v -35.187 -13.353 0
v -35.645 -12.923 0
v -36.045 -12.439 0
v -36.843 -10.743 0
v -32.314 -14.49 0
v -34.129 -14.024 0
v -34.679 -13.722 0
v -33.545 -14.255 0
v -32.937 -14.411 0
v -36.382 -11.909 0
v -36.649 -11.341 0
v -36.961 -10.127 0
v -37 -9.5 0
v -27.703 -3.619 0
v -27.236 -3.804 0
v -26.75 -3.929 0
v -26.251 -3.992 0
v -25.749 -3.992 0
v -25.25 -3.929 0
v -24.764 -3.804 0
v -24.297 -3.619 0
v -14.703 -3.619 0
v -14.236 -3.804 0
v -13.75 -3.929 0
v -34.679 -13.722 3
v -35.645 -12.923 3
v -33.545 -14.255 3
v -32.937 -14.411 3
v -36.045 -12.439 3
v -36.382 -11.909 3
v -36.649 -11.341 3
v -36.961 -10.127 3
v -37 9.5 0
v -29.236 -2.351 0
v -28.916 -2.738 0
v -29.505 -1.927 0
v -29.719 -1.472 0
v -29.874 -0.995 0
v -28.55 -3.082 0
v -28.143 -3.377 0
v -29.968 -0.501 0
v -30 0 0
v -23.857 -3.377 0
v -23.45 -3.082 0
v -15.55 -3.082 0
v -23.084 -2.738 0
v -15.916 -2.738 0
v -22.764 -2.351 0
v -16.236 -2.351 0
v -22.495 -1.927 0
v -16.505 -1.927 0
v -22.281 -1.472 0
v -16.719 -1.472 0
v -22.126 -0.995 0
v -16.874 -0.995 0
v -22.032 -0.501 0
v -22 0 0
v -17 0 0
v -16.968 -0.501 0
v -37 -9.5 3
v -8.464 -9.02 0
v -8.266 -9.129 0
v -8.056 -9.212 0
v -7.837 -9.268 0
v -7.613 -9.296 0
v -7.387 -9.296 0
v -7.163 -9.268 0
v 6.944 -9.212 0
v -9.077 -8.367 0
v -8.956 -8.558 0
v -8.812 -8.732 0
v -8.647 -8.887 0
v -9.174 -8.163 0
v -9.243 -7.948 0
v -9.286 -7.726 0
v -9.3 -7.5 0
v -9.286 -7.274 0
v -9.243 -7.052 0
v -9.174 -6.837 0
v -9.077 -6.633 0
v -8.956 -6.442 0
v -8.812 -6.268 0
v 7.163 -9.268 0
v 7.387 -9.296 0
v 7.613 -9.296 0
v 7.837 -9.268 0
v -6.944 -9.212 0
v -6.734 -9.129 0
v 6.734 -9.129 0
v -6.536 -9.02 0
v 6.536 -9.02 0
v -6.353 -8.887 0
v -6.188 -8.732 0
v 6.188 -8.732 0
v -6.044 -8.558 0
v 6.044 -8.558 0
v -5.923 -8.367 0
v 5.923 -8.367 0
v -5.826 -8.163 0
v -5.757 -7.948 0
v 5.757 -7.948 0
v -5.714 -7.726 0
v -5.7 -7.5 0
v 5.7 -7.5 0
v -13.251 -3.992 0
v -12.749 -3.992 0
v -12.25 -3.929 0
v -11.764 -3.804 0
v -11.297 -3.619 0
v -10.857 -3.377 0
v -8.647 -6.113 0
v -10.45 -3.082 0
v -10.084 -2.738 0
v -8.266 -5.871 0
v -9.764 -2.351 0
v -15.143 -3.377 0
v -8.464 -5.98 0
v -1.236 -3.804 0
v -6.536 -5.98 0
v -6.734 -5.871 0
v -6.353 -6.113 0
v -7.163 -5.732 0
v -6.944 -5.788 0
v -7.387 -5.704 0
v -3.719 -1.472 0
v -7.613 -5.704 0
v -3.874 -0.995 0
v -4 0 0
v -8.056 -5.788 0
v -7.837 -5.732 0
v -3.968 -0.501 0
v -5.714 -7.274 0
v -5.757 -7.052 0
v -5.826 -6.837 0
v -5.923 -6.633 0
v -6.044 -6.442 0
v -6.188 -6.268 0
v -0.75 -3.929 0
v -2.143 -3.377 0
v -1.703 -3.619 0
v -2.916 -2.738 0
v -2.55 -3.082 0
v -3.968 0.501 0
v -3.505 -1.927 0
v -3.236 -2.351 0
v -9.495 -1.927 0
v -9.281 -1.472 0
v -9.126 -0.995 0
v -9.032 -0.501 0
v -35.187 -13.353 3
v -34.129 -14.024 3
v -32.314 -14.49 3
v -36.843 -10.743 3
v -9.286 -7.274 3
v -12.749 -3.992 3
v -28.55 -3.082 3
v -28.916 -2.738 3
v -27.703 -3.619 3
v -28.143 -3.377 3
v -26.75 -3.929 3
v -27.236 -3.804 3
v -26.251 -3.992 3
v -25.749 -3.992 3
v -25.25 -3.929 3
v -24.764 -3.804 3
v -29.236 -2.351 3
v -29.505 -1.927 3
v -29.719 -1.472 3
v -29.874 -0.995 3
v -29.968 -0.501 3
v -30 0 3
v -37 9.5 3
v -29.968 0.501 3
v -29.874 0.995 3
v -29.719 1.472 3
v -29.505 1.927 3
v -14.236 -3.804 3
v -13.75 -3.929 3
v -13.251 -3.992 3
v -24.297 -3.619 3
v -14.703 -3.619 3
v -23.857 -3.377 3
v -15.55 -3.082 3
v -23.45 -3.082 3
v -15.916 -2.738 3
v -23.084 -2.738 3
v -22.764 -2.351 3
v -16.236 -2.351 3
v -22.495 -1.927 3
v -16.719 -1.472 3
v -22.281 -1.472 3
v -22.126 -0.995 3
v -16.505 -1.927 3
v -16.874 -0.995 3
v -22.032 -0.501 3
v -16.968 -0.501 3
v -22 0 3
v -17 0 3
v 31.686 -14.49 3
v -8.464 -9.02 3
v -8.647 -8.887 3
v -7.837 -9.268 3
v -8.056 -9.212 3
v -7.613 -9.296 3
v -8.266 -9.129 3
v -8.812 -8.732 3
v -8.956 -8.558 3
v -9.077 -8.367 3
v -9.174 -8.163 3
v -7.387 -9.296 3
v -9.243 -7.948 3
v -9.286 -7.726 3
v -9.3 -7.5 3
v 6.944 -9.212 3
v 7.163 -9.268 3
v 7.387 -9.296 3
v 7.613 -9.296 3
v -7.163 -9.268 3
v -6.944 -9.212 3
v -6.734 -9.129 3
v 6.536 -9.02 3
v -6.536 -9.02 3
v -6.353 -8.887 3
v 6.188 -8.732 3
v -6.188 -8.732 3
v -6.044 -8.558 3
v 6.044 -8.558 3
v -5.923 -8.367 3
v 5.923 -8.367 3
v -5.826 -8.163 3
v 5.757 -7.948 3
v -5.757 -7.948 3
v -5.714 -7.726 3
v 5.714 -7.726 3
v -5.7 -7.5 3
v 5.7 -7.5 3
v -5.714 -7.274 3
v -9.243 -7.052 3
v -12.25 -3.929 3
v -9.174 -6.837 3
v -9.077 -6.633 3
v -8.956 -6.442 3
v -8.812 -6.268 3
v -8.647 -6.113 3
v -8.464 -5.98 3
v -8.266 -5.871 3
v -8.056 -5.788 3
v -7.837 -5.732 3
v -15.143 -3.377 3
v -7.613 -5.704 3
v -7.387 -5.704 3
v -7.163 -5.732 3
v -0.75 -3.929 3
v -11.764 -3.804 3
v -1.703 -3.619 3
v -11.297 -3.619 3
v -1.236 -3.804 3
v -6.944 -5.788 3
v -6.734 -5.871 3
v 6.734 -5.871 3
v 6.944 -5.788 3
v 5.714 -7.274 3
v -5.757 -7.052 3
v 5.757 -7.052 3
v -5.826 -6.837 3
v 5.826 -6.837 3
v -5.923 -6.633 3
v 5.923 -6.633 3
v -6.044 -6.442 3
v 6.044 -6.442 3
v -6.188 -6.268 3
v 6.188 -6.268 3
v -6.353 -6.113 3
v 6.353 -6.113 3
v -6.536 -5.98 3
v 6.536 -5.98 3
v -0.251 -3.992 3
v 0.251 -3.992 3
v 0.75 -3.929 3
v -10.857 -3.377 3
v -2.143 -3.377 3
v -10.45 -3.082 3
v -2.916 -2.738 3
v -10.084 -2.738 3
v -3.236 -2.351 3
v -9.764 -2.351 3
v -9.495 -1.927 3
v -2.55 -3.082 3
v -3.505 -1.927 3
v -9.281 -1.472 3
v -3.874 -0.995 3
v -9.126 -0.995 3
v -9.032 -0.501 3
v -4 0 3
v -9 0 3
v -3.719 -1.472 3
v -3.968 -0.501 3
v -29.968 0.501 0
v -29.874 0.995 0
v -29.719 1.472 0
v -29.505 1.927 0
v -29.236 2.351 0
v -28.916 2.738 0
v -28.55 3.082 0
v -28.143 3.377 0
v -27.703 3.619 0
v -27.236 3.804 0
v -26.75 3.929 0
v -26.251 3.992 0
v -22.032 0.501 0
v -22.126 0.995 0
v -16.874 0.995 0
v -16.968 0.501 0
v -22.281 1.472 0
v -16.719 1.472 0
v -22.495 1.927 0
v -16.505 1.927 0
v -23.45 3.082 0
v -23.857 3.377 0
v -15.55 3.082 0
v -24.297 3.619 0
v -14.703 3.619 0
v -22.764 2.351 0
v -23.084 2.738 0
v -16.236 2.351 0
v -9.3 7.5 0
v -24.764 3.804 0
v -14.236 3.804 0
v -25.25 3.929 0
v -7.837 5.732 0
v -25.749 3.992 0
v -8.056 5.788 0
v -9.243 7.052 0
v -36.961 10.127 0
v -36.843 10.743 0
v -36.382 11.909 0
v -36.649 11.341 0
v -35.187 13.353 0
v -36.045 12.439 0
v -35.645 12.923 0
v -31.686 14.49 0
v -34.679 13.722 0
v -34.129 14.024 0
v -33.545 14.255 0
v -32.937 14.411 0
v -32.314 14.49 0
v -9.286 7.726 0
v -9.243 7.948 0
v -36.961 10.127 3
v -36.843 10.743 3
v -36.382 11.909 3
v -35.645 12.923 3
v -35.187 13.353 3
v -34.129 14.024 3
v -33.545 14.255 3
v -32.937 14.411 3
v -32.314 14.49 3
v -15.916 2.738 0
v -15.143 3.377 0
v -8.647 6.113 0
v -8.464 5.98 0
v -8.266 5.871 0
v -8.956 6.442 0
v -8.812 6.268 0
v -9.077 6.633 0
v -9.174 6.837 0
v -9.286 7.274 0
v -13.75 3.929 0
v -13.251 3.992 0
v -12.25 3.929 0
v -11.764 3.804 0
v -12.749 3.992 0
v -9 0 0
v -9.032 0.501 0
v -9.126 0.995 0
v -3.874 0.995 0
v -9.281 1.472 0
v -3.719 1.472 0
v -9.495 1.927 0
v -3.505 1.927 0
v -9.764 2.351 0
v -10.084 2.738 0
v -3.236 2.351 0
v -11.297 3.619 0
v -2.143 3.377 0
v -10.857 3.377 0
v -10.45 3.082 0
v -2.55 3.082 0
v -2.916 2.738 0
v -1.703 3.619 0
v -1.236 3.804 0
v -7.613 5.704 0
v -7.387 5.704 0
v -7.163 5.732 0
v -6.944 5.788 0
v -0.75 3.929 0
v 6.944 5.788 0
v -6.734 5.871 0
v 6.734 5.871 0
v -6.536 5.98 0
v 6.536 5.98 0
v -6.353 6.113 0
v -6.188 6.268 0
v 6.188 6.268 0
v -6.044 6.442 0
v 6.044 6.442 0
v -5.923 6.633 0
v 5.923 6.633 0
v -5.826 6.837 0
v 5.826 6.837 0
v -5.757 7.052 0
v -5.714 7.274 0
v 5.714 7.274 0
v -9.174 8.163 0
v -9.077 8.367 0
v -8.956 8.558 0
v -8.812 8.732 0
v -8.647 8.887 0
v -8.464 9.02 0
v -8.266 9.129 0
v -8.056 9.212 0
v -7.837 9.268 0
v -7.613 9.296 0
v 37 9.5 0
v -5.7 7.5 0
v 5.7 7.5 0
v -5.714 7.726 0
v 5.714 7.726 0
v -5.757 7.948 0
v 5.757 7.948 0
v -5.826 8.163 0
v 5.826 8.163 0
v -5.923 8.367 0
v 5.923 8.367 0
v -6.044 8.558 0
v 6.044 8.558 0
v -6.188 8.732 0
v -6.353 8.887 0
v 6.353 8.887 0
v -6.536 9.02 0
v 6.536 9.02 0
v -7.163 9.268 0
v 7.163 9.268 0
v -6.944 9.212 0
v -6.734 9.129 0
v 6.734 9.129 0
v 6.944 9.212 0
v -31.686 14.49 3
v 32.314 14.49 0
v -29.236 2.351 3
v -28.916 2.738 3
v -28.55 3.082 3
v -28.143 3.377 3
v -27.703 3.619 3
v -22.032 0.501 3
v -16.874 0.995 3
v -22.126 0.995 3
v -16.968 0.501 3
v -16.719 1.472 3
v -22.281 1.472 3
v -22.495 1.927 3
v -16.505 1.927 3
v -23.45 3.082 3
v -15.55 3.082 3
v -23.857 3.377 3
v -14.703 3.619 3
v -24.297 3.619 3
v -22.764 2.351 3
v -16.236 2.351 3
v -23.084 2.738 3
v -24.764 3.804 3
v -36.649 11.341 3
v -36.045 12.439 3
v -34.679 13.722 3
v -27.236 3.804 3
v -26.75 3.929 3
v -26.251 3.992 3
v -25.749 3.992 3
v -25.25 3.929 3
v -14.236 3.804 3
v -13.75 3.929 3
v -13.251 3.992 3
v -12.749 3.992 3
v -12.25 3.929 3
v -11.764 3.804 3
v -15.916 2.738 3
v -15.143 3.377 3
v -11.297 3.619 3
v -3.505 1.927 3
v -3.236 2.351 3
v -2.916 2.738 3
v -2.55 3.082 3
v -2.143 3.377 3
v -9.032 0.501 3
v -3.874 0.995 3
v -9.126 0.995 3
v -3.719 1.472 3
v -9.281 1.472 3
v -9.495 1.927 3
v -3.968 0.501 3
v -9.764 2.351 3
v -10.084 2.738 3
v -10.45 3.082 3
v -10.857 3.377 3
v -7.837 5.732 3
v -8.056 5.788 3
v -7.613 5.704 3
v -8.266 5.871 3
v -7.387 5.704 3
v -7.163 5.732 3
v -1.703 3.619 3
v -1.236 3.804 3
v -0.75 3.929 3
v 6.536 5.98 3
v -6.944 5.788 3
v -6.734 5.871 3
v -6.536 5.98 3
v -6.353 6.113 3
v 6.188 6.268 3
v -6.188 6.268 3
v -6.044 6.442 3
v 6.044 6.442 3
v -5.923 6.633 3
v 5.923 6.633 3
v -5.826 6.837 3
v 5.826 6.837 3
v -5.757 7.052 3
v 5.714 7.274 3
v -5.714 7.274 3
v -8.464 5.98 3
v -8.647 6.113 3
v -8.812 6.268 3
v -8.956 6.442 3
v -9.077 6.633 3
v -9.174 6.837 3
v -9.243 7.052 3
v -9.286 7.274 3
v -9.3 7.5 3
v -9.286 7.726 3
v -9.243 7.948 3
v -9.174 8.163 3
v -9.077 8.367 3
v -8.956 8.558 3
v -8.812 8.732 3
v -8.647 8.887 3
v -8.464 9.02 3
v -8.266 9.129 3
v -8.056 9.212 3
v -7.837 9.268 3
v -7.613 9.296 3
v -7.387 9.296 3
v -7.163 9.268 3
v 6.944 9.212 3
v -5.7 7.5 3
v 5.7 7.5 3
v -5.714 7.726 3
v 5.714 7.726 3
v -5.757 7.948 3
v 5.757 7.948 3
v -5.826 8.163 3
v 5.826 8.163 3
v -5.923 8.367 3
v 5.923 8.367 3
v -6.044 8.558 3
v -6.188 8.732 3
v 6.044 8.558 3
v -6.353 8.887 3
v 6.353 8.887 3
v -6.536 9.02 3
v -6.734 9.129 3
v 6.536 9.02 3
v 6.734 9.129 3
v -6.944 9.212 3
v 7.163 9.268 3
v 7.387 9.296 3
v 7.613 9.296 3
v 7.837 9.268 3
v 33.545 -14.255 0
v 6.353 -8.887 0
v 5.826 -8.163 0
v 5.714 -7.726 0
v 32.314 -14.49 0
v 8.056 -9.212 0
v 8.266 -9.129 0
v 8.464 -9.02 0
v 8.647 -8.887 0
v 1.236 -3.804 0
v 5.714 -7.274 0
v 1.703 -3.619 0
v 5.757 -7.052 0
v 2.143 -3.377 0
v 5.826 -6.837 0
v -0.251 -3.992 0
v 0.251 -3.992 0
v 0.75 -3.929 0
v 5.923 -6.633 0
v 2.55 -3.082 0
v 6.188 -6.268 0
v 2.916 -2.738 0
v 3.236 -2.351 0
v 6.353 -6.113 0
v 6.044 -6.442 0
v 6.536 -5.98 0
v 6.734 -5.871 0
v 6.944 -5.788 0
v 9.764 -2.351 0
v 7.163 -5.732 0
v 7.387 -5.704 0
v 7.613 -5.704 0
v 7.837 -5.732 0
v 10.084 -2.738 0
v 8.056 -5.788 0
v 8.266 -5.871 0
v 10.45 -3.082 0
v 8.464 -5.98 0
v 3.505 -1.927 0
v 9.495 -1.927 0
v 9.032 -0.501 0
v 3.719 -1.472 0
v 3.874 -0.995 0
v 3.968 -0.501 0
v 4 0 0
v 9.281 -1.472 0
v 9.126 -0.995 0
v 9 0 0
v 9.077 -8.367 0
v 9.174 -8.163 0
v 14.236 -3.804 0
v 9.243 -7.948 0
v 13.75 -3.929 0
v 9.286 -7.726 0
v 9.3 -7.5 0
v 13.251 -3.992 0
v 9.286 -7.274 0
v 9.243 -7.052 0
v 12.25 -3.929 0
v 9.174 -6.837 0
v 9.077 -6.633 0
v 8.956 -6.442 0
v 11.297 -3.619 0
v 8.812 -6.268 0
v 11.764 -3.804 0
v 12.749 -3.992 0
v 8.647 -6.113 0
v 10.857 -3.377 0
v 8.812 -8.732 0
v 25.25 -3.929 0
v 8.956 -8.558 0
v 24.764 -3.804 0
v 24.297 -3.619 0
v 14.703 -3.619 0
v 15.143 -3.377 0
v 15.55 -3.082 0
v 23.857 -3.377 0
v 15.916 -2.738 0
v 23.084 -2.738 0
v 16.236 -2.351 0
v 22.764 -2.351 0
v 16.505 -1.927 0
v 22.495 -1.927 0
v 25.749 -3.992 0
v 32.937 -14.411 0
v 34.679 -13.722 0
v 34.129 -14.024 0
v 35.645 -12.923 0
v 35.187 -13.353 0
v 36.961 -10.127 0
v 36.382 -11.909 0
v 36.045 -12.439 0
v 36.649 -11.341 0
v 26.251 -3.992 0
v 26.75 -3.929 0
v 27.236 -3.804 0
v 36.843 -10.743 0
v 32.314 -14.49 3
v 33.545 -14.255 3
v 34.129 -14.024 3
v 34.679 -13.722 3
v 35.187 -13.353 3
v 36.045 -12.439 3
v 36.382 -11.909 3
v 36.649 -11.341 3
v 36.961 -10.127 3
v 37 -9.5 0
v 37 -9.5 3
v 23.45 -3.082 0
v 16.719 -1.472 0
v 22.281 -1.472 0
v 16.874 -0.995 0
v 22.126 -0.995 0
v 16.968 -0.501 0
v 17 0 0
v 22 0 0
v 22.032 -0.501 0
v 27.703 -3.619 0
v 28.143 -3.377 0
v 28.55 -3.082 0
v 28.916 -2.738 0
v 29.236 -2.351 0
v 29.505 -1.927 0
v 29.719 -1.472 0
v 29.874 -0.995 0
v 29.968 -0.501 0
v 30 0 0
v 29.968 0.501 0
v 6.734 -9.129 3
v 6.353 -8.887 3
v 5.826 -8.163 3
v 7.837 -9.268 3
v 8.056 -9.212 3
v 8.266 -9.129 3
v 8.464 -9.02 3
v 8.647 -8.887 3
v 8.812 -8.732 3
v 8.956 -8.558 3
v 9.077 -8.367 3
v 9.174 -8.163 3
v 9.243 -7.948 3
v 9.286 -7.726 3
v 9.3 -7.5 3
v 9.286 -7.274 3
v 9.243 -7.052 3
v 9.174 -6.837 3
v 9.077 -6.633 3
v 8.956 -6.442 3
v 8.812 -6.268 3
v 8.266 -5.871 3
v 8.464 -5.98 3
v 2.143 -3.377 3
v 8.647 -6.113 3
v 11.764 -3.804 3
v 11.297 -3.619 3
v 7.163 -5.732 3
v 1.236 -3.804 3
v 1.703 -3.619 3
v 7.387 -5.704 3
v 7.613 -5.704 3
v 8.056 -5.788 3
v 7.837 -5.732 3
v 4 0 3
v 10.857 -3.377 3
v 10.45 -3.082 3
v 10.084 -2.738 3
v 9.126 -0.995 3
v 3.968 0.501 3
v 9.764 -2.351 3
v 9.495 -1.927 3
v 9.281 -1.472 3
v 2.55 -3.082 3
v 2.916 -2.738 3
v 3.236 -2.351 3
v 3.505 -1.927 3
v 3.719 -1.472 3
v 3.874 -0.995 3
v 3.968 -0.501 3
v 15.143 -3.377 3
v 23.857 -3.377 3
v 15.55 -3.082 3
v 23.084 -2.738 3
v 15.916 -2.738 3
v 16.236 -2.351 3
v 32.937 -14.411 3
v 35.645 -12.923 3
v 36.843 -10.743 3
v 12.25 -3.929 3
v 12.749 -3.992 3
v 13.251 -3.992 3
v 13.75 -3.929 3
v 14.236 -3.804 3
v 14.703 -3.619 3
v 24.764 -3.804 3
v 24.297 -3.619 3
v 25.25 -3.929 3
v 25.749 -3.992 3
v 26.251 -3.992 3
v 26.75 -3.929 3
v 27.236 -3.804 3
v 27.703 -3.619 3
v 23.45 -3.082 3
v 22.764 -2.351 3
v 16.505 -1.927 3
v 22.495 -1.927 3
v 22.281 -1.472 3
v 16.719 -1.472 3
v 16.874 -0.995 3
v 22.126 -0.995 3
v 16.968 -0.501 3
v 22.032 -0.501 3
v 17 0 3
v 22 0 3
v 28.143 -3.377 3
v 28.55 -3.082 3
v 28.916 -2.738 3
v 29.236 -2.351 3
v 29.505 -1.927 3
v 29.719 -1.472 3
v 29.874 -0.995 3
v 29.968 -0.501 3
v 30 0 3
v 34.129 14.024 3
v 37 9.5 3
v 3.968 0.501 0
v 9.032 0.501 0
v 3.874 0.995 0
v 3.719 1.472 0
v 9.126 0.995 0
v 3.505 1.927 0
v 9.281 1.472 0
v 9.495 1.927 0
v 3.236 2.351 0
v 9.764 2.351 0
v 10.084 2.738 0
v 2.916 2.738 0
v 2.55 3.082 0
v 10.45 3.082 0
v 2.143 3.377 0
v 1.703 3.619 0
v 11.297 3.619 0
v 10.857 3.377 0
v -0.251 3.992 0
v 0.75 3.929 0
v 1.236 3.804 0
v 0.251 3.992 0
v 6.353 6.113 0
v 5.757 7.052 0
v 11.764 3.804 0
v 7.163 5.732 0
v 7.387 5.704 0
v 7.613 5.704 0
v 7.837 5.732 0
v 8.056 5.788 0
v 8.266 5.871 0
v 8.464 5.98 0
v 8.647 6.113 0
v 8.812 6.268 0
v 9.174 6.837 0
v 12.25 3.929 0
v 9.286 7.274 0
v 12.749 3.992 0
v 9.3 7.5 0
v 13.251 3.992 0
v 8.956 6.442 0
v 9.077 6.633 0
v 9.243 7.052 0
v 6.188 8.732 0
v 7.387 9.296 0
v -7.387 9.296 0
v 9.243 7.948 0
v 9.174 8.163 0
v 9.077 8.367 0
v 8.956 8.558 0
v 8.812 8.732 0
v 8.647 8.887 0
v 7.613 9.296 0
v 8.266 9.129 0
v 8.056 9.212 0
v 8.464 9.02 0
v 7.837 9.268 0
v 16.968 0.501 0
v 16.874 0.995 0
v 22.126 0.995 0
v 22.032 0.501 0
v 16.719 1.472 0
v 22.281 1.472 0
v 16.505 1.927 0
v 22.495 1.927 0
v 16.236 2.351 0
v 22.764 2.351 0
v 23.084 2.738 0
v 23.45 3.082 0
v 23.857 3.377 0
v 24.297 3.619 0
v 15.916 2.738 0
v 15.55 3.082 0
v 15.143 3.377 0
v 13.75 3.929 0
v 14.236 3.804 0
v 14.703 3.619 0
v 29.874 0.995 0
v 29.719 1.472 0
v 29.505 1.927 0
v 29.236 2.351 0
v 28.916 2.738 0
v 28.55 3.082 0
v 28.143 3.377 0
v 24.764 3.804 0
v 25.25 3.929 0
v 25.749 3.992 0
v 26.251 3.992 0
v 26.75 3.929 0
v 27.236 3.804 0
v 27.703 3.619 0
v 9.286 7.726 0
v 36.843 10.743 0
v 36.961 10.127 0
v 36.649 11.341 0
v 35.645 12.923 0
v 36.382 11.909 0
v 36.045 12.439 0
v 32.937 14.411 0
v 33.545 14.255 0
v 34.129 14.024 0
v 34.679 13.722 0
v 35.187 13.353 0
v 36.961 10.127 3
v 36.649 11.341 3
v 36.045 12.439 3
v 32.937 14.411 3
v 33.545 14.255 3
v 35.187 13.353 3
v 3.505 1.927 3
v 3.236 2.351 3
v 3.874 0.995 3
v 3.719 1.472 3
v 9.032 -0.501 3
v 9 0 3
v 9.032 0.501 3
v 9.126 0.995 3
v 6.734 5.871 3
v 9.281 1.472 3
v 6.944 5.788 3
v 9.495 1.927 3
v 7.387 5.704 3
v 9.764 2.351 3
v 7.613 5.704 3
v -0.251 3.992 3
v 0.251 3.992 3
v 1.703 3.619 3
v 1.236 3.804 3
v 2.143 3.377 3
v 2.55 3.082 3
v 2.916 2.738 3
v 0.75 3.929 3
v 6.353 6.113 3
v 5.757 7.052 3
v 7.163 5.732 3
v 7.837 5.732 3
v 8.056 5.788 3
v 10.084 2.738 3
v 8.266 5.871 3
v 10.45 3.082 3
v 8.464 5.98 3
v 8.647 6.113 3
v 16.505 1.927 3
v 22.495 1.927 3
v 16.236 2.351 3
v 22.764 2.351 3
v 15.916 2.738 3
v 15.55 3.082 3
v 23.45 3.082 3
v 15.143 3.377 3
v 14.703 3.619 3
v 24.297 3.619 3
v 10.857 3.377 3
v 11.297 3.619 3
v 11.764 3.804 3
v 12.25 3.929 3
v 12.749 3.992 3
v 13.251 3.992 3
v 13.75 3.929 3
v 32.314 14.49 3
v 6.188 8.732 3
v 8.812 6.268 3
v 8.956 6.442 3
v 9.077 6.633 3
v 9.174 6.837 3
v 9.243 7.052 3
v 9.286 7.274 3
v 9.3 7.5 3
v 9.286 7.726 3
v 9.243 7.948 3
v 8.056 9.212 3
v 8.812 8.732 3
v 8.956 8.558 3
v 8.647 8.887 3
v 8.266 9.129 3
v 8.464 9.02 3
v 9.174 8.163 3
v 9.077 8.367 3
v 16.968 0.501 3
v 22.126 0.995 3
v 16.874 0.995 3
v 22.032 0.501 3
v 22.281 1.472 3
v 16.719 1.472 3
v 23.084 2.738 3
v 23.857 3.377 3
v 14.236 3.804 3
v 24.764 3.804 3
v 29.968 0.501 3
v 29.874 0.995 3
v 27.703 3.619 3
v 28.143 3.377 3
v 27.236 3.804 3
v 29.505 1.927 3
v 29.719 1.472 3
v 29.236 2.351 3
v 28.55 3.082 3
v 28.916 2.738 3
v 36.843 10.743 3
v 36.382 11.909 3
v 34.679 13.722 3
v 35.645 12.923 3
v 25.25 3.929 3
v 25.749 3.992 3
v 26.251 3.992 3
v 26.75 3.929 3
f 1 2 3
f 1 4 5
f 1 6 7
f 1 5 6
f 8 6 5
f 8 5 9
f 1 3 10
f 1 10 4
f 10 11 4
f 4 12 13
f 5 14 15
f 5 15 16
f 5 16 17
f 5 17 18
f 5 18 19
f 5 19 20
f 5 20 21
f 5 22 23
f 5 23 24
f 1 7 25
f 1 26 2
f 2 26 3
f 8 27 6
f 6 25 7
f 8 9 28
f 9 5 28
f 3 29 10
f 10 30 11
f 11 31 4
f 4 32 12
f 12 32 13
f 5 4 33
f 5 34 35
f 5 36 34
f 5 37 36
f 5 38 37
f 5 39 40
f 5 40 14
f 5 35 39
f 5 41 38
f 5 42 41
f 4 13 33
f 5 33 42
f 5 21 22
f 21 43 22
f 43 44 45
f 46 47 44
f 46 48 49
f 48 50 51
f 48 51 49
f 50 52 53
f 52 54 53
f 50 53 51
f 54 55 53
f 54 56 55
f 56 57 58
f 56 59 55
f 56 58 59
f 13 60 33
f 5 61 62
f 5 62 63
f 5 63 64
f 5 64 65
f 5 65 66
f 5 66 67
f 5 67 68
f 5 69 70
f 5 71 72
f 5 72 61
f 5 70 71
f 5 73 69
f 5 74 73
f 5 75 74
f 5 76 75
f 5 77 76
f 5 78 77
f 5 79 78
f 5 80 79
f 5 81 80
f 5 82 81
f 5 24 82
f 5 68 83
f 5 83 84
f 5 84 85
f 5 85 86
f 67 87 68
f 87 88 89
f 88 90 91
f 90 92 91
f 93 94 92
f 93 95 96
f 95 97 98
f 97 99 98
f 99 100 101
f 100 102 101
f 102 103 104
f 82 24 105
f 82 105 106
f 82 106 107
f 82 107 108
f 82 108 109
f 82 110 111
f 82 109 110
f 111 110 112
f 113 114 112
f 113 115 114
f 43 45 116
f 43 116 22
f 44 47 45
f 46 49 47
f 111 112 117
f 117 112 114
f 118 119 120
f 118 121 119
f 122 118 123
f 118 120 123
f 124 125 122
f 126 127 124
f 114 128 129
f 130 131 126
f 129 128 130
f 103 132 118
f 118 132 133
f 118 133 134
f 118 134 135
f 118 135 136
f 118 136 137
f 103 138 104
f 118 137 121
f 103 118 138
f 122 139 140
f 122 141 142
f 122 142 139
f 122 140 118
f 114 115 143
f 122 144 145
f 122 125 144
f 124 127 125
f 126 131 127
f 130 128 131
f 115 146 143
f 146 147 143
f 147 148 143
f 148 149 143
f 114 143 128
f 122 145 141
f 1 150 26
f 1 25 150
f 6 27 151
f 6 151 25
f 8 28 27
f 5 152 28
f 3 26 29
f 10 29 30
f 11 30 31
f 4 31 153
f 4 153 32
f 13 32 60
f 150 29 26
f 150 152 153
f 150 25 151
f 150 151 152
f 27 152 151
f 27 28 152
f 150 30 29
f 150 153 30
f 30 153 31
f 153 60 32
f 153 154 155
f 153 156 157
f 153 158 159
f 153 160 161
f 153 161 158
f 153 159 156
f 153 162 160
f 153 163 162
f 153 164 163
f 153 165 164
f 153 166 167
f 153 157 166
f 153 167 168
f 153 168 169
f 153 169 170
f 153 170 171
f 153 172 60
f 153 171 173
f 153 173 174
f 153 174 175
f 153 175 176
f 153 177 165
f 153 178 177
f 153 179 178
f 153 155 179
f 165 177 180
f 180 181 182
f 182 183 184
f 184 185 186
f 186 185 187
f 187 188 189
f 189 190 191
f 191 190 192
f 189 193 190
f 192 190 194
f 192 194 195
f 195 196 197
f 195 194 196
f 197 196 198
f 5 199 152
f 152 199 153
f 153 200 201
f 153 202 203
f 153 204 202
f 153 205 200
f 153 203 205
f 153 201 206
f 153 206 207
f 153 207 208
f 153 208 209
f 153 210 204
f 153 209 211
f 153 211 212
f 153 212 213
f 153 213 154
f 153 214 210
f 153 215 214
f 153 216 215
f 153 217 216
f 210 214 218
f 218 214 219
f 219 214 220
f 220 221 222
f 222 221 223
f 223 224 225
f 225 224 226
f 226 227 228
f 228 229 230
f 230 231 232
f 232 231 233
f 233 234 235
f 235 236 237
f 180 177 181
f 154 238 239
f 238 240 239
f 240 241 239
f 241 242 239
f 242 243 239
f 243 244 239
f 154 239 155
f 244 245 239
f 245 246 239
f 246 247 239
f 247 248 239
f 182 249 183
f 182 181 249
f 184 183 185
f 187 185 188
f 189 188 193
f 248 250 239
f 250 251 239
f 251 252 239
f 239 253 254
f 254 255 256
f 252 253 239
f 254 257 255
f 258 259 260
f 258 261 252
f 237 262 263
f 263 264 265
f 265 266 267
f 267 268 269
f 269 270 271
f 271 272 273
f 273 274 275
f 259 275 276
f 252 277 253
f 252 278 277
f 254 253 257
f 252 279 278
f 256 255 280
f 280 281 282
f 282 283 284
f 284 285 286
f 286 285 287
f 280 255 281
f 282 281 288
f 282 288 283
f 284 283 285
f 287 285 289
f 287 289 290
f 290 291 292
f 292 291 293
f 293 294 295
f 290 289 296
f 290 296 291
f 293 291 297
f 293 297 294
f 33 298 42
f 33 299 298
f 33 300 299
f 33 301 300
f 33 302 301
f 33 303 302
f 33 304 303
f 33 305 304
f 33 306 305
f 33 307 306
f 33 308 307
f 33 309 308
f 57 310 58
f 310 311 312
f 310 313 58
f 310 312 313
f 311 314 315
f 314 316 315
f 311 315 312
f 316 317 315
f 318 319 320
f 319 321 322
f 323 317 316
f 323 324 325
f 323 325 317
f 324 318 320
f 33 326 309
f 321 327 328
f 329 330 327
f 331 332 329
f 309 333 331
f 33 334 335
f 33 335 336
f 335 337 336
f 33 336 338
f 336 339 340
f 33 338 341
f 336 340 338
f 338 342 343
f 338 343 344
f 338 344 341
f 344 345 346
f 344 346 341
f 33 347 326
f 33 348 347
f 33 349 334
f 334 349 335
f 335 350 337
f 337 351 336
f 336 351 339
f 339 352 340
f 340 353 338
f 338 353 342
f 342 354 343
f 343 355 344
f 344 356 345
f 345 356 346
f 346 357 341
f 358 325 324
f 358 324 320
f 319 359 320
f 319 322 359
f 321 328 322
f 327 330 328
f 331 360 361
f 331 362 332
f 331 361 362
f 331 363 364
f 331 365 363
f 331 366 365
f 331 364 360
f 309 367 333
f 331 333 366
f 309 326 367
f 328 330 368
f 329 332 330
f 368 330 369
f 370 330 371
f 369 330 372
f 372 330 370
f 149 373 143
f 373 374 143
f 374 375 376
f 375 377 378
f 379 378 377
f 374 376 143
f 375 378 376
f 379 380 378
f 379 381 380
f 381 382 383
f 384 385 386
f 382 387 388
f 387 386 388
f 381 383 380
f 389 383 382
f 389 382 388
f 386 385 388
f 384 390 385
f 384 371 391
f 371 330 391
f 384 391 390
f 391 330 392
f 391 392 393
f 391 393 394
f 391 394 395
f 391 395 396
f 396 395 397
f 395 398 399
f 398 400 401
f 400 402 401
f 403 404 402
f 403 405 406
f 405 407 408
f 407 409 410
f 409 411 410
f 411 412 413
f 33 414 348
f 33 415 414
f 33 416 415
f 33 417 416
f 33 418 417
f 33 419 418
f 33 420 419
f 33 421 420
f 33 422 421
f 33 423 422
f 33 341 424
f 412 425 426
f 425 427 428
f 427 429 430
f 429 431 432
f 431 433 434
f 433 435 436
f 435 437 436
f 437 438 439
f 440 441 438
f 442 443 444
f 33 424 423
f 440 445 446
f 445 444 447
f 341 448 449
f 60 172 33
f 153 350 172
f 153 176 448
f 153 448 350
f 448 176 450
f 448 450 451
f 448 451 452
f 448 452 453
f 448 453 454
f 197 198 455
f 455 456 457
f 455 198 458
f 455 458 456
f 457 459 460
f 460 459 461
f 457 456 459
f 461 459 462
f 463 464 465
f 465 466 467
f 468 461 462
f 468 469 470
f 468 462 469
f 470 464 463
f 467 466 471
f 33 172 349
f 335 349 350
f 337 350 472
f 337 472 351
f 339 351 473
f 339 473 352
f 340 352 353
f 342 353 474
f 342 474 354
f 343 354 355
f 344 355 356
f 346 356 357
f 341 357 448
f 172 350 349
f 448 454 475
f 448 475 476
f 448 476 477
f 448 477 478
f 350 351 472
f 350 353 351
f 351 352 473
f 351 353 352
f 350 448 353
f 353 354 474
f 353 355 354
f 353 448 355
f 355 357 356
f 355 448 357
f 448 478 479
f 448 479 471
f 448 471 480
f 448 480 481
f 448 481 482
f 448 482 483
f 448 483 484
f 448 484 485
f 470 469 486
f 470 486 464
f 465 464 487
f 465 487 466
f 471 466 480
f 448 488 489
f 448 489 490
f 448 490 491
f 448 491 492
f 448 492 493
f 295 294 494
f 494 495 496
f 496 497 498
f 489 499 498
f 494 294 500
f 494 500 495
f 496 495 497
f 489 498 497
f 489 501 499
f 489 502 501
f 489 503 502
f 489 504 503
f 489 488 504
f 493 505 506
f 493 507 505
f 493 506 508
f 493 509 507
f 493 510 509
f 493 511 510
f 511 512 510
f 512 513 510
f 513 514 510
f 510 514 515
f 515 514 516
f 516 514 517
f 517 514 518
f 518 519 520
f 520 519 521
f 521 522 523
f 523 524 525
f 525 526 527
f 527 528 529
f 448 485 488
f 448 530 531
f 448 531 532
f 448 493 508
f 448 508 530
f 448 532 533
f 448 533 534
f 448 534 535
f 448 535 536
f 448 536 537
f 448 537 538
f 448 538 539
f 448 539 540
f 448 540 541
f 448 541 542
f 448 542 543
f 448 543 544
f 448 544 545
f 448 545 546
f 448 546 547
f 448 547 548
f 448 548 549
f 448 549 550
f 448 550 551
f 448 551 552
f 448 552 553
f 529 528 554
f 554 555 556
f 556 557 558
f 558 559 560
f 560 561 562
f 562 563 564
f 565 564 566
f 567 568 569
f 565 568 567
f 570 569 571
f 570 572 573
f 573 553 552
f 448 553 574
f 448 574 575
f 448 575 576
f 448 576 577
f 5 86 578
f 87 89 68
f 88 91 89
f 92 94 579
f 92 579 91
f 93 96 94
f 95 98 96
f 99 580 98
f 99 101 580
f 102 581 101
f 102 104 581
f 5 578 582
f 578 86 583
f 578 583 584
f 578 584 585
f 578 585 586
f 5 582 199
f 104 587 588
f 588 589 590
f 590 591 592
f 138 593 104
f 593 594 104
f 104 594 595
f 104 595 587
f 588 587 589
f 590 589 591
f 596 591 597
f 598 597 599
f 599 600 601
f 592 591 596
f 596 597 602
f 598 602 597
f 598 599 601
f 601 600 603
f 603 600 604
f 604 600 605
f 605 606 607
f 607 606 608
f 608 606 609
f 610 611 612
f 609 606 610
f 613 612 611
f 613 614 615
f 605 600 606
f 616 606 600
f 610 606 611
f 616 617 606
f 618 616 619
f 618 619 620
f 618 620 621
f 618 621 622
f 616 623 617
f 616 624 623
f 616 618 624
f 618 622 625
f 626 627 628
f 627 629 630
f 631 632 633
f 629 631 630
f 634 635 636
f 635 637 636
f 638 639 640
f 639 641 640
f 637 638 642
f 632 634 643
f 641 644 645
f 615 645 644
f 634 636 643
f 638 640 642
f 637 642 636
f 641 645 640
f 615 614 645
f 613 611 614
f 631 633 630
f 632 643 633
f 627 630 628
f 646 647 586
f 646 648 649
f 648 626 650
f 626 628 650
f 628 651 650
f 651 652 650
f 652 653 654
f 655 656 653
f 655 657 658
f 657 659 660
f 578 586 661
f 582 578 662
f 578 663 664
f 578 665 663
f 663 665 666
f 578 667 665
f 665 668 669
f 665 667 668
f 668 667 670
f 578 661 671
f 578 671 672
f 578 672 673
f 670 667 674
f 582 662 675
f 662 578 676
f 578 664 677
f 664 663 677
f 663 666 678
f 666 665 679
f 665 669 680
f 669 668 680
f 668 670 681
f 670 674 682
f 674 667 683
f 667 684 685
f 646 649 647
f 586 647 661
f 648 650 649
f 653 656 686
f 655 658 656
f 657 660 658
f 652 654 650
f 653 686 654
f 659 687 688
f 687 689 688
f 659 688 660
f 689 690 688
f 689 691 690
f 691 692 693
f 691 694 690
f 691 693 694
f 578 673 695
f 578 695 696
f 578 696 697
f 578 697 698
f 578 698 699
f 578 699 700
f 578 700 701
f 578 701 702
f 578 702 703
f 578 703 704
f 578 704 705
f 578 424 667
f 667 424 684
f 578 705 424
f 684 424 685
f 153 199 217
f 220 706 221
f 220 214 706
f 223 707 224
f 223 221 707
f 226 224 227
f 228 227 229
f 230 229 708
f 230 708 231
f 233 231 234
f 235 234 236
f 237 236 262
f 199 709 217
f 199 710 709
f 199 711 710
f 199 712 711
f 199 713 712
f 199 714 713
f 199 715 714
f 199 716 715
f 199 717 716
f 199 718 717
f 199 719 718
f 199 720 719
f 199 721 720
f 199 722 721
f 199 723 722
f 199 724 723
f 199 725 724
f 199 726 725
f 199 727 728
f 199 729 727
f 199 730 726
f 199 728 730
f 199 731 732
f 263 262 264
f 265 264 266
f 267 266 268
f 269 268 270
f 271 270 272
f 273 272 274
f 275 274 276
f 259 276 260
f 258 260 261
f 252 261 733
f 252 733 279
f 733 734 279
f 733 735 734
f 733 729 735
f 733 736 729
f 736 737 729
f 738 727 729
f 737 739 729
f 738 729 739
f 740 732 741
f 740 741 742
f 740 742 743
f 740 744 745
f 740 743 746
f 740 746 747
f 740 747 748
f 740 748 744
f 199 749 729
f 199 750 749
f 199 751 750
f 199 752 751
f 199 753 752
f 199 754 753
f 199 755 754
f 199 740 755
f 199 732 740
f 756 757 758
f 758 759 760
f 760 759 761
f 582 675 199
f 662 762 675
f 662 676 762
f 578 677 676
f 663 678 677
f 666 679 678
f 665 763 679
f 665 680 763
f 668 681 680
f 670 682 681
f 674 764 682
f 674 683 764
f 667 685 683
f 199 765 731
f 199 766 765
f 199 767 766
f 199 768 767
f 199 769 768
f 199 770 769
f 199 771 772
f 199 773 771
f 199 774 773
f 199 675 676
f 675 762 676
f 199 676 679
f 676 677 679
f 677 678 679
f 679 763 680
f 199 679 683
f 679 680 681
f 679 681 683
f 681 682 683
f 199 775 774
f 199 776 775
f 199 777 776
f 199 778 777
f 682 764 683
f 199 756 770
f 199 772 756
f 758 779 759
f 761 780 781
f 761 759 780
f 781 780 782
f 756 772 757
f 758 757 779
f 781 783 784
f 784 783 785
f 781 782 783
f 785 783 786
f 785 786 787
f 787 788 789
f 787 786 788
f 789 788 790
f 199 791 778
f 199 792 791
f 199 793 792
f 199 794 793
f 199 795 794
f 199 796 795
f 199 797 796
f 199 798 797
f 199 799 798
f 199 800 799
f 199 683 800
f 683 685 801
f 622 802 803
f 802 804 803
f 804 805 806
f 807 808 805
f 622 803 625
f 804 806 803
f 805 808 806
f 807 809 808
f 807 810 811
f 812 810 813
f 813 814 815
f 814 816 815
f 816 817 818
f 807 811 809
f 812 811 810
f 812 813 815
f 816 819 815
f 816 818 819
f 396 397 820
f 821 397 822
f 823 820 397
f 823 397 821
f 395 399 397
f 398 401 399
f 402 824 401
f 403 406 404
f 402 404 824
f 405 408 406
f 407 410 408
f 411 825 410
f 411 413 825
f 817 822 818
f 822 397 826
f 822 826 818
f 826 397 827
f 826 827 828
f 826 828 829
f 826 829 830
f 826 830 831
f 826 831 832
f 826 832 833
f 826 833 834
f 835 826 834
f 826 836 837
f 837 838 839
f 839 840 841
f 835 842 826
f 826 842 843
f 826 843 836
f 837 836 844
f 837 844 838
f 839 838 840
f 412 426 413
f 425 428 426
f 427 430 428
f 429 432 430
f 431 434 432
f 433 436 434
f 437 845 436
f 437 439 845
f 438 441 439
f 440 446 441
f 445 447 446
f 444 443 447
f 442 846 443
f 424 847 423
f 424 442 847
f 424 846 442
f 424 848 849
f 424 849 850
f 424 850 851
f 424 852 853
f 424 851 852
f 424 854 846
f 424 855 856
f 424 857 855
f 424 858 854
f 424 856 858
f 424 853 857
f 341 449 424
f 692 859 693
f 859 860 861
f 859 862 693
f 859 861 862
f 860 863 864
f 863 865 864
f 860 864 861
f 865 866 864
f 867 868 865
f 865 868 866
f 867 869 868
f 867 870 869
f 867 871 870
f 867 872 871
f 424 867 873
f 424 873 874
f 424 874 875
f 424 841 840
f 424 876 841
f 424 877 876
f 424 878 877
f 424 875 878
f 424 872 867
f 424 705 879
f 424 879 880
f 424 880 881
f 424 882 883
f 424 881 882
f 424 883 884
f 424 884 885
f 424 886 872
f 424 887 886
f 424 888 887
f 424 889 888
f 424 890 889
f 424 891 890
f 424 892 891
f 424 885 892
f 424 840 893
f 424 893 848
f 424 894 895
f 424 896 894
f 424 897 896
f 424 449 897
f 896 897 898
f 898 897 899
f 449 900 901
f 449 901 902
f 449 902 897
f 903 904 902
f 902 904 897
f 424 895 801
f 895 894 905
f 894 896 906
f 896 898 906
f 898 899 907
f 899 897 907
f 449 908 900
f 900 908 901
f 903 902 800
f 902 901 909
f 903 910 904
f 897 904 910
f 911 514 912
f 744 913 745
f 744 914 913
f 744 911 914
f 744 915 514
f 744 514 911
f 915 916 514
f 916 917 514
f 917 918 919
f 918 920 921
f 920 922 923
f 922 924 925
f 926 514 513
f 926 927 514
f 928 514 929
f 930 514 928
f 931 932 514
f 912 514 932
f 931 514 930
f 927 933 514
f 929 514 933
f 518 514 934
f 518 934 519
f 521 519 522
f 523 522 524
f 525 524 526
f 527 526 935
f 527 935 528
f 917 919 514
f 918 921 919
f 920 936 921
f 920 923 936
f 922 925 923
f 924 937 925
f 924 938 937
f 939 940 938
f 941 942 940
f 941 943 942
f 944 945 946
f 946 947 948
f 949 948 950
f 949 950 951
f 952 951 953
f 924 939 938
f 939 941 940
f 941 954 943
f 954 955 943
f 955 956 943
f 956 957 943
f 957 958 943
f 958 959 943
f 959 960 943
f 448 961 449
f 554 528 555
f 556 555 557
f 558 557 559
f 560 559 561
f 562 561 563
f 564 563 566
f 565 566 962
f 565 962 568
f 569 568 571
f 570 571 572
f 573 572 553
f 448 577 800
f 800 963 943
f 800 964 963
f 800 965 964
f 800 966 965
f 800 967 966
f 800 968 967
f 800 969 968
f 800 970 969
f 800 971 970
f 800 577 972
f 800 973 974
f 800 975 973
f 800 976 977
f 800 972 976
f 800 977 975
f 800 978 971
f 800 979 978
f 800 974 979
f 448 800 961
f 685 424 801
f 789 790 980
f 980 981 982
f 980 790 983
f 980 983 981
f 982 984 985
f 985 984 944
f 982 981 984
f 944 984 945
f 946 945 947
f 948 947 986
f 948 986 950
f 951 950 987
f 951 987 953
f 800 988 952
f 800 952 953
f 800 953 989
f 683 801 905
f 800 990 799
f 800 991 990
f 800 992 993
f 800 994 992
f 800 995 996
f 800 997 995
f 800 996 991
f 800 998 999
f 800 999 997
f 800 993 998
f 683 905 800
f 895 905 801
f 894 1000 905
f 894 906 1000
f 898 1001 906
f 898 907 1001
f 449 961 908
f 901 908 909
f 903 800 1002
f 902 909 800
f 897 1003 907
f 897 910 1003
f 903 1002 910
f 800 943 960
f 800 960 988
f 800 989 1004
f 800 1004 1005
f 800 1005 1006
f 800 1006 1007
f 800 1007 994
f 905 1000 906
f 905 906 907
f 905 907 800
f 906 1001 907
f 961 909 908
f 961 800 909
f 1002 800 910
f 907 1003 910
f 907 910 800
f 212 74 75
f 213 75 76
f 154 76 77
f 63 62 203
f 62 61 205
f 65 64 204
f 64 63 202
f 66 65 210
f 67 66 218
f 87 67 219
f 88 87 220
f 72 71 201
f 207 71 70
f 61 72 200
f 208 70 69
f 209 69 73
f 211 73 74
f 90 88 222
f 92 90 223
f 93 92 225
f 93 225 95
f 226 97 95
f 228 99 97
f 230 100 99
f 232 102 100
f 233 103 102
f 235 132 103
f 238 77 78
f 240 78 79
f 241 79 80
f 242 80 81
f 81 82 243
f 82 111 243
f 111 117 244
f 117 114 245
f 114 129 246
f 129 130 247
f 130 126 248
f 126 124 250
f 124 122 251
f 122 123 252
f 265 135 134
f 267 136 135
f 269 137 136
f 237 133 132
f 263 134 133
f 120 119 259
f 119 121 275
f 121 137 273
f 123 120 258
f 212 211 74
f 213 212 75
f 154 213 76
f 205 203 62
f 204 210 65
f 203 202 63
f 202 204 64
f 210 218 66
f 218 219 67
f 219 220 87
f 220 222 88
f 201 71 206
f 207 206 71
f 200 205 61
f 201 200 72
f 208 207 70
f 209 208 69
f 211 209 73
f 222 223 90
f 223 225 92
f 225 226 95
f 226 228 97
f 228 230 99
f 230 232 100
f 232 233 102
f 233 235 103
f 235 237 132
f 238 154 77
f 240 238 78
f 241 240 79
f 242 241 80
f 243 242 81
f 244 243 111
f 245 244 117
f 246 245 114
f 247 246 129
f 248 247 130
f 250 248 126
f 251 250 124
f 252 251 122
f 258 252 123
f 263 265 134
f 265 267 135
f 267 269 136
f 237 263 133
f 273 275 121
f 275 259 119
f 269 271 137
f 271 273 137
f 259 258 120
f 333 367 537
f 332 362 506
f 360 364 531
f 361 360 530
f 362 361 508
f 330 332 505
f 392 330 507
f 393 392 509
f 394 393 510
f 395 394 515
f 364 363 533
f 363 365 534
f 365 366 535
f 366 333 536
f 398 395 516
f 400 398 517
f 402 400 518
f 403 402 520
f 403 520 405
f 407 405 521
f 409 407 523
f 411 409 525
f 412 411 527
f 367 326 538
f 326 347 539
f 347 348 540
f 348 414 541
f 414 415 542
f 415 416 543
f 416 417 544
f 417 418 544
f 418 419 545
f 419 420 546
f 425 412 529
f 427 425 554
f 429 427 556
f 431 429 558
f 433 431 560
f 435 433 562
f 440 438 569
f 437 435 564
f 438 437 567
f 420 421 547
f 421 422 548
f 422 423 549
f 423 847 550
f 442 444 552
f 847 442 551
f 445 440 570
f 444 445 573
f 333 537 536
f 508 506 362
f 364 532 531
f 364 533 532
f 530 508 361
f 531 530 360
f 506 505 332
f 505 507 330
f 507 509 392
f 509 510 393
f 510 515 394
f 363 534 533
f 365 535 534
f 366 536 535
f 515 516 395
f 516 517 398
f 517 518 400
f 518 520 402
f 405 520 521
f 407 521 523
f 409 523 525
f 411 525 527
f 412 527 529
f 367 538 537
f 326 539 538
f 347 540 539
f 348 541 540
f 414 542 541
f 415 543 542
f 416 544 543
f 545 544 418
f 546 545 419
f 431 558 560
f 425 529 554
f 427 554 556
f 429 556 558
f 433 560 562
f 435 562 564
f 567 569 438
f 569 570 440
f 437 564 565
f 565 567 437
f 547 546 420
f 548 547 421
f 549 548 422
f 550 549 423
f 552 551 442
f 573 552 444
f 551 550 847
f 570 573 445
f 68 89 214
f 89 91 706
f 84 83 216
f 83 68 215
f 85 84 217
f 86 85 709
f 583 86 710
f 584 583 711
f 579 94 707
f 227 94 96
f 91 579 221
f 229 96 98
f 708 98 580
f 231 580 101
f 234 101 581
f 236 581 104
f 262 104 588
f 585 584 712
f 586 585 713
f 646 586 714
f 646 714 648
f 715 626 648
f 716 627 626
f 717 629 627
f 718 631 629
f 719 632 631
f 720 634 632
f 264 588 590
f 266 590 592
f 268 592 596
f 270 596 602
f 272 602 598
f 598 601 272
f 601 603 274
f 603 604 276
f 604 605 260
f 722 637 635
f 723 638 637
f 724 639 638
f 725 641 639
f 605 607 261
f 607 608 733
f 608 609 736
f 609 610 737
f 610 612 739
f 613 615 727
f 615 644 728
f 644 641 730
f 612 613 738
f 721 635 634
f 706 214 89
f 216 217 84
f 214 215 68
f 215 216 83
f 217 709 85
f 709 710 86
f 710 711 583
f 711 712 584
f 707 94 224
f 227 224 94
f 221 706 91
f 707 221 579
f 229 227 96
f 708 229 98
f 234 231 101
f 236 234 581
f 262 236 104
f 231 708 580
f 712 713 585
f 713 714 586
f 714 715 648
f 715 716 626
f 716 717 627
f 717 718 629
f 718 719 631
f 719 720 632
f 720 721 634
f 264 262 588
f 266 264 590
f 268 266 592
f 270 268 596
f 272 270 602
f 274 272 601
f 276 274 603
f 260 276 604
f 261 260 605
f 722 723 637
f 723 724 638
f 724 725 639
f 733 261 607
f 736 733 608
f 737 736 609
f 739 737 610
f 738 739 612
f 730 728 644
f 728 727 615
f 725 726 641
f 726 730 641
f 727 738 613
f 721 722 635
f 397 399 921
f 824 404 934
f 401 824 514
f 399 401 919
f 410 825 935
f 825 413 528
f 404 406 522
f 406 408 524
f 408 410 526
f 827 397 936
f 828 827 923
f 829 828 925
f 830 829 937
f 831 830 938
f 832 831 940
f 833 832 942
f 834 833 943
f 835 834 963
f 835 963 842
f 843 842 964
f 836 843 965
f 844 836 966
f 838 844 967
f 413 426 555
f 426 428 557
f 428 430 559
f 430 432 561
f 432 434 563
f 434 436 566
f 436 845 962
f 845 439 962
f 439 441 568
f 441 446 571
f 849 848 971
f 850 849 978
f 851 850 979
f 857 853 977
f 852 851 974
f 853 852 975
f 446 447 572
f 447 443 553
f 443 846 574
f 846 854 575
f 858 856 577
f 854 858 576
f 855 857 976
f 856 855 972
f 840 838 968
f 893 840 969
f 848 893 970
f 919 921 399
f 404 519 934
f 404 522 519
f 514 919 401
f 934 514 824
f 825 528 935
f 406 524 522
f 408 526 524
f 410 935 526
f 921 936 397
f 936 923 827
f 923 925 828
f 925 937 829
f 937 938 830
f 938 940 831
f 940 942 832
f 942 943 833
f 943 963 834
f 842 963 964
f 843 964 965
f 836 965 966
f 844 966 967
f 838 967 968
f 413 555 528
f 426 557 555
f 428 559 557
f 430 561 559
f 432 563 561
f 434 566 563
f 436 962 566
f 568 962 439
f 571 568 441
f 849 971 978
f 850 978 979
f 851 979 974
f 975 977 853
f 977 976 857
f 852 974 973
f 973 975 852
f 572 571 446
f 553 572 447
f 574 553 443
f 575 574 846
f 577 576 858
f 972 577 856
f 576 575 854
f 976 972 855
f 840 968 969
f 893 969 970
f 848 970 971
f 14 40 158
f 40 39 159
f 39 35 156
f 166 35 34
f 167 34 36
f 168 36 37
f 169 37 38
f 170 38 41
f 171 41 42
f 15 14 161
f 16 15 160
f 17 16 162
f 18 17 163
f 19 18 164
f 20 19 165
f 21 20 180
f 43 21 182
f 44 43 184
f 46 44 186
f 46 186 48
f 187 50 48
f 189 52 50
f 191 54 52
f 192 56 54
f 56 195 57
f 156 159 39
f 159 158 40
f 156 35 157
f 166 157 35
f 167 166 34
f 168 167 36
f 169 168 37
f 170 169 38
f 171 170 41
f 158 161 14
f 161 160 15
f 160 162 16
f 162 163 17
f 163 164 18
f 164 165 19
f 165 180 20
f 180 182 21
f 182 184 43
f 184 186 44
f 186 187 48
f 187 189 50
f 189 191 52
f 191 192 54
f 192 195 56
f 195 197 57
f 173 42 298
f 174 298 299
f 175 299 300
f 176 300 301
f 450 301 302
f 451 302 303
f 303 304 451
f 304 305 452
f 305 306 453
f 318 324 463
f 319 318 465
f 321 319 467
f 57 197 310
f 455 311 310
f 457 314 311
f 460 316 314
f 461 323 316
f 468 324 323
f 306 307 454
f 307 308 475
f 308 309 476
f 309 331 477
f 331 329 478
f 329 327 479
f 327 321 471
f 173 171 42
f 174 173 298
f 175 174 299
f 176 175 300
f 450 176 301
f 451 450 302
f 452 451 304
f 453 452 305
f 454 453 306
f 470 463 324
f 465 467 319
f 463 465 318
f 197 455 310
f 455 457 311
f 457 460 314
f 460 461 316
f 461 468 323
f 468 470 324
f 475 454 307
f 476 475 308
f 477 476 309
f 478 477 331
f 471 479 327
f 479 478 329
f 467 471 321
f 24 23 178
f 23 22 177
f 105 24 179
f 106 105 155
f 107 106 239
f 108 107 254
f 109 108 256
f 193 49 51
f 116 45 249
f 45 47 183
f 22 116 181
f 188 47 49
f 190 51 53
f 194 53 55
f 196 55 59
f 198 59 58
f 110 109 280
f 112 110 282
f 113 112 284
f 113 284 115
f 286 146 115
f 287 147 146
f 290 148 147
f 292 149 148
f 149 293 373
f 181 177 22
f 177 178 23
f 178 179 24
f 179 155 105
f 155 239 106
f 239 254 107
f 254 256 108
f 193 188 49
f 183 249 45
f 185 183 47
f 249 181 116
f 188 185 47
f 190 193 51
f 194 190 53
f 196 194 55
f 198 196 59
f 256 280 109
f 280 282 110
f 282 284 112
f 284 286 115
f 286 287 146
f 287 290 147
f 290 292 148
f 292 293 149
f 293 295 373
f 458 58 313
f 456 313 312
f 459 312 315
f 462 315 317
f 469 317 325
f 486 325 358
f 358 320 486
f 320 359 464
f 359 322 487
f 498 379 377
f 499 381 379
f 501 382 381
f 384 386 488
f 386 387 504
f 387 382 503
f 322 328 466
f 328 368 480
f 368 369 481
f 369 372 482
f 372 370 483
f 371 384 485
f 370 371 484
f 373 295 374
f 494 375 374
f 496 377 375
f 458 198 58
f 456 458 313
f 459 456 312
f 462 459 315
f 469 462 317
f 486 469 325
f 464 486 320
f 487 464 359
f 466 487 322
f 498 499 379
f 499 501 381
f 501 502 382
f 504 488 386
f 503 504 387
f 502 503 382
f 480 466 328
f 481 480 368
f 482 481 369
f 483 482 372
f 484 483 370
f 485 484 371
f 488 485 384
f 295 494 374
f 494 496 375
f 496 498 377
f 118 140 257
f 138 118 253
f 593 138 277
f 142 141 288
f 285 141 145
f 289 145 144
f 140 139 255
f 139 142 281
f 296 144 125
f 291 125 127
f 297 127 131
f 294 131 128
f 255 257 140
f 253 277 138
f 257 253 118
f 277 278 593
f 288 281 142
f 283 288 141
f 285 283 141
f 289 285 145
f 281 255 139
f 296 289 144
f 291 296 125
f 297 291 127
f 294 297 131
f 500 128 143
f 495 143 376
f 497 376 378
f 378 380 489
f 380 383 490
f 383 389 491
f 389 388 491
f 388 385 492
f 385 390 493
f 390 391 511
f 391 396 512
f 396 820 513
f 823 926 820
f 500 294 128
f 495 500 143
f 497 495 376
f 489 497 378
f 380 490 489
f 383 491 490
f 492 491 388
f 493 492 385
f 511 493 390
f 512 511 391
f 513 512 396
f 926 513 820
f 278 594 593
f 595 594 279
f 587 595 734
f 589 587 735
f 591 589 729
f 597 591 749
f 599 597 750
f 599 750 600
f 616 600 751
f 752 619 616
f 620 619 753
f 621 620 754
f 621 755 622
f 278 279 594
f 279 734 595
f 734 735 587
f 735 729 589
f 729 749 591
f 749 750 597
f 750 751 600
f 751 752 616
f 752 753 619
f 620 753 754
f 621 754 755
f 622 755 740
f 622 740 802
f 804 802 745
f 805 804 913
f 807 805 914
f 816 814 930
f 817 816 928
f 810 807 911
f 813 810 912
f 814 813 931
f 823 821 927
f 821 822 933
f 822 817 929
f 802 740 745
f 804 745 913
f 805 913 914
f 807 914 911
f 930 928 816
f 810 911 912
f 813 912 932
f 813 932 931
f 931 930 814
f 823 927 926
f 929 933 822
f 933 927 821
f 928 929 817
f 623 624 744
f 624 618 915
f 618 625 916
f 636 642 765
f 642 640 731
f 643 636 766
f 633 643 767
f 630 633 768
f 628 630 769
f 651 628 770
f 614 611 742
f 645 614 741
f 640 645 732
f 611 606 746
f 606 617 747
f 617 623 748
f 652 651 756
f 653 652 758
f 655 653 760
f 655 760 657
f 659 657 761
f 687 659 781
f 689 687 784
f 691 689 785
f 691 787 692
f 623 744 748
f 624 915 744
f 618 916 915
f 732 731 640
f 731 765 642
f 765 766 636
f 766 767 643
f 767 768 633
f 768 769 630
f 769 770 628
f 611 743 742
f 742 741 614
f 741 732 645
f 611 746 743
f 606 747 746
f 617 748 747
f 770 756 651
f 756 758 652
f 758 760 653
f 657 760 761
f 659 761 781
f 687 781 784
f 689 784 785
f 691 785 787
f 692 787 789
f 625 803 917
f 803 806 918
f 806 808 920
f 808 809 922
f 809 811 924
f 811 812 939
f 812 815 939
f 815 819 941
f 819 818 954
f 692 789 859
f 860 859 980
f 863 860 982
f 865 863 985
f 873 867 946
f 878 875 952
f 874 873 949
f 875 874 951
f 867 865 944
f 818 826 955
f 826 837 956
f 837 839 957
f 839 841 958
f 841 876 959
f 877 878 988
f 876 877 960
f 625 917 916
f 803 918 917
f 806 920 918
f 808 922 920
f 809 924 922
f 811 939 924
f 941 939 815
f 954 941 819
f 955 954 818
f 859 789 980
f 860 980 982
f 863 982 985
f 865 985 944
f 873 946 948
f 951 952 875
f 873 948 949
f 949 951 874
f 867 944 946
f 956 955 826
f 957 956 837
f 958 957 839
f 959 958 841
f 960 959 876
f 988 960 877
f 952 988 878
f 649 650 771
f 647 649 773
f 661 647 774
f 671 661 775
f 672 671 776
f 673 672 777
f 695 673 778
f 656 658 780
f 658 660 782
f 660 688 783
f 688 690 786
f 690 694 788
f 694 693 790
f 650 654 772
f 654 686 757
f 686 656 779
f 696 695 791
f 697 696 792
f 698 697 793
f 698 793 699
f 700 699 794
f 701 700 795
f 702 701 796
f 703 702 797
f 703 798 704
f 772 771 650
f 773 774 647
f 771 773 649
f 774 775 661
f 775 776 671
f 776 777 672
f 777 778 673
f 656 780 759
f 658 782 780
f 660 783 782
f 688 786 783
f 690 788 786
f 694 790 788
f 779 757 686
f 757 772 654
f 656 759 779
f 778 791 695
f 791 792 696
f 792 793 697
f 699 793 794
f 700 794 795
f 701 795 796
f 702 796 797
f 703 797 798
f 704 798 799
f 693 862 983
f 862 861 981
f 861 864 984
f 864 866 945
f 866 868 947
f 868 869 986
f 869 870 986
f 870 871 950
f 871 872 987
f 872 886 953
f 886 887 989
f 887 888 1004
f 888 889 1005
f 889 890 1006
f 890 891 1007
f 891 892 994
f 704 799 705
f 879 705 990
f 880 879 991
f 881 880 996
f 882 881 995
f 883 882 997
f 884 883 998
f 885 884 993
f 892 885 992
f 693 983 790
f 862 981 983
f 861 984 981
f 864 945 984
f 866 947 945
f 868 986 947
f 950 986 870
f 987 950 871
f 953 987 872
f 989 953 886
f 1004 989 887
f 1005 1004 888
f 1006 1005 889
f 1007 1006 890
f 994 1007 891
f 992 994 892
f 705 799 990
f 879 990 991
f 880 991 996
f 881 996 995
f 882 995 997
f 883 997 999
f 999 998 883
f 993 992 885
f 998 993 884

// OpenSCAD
$fn = 50;

difference() {
	union() {
		hull() {
			translate(v = [-32.0, 9.5, 0]) {
				cylinder(h = 3, r = 5);
			}
			translate(v = [32.0, 9.5, 0]) {
				cylinder(h = 3, r = 5);
			}
			translate(v = [-32.0, -9.5, 0]) {
				cylinder(h = 3, r = 5);
			}
			translate(v = [32.0, -9.5, 0]) {
				cylinder(h = 3, r = 5);
			}
		}
	}
	union() {
		translate(v = [-7.5, -7.5, 0]) {
			cylinder(h = 3, r = 1.8);
		}
		translate(v = [-7.5, 7.5, 0]) {
			cylinder(h = 3, r = 1.8);
		}
		translate(v = [7.5, -7.5, 0]) {
			cylinder(h = 3, r = 1.8);
		}
		translate(v = [7.5, 7.5, 0]) {
			cylinder(h = 3, r = 1.8);
		}
		translate(v = [-26.0, 0, 0.0]) {
			cylinder(h = 3, r = 4.0);
		}
		translate(v = [-13.0, 0, 0.0]) {
			cylinder(h = 3, r = 4.0);
		}
		cylinder(h = 3, r = 4.0);
		translate(v = [13.0, 0, 0.0]) {
			cylinder(h = 3, r = 4.0);
		}
		translate(v = [26.0, 0, 0.0]) {
			cylinder(h = 3, r = 4.0);
		}
	}
}
